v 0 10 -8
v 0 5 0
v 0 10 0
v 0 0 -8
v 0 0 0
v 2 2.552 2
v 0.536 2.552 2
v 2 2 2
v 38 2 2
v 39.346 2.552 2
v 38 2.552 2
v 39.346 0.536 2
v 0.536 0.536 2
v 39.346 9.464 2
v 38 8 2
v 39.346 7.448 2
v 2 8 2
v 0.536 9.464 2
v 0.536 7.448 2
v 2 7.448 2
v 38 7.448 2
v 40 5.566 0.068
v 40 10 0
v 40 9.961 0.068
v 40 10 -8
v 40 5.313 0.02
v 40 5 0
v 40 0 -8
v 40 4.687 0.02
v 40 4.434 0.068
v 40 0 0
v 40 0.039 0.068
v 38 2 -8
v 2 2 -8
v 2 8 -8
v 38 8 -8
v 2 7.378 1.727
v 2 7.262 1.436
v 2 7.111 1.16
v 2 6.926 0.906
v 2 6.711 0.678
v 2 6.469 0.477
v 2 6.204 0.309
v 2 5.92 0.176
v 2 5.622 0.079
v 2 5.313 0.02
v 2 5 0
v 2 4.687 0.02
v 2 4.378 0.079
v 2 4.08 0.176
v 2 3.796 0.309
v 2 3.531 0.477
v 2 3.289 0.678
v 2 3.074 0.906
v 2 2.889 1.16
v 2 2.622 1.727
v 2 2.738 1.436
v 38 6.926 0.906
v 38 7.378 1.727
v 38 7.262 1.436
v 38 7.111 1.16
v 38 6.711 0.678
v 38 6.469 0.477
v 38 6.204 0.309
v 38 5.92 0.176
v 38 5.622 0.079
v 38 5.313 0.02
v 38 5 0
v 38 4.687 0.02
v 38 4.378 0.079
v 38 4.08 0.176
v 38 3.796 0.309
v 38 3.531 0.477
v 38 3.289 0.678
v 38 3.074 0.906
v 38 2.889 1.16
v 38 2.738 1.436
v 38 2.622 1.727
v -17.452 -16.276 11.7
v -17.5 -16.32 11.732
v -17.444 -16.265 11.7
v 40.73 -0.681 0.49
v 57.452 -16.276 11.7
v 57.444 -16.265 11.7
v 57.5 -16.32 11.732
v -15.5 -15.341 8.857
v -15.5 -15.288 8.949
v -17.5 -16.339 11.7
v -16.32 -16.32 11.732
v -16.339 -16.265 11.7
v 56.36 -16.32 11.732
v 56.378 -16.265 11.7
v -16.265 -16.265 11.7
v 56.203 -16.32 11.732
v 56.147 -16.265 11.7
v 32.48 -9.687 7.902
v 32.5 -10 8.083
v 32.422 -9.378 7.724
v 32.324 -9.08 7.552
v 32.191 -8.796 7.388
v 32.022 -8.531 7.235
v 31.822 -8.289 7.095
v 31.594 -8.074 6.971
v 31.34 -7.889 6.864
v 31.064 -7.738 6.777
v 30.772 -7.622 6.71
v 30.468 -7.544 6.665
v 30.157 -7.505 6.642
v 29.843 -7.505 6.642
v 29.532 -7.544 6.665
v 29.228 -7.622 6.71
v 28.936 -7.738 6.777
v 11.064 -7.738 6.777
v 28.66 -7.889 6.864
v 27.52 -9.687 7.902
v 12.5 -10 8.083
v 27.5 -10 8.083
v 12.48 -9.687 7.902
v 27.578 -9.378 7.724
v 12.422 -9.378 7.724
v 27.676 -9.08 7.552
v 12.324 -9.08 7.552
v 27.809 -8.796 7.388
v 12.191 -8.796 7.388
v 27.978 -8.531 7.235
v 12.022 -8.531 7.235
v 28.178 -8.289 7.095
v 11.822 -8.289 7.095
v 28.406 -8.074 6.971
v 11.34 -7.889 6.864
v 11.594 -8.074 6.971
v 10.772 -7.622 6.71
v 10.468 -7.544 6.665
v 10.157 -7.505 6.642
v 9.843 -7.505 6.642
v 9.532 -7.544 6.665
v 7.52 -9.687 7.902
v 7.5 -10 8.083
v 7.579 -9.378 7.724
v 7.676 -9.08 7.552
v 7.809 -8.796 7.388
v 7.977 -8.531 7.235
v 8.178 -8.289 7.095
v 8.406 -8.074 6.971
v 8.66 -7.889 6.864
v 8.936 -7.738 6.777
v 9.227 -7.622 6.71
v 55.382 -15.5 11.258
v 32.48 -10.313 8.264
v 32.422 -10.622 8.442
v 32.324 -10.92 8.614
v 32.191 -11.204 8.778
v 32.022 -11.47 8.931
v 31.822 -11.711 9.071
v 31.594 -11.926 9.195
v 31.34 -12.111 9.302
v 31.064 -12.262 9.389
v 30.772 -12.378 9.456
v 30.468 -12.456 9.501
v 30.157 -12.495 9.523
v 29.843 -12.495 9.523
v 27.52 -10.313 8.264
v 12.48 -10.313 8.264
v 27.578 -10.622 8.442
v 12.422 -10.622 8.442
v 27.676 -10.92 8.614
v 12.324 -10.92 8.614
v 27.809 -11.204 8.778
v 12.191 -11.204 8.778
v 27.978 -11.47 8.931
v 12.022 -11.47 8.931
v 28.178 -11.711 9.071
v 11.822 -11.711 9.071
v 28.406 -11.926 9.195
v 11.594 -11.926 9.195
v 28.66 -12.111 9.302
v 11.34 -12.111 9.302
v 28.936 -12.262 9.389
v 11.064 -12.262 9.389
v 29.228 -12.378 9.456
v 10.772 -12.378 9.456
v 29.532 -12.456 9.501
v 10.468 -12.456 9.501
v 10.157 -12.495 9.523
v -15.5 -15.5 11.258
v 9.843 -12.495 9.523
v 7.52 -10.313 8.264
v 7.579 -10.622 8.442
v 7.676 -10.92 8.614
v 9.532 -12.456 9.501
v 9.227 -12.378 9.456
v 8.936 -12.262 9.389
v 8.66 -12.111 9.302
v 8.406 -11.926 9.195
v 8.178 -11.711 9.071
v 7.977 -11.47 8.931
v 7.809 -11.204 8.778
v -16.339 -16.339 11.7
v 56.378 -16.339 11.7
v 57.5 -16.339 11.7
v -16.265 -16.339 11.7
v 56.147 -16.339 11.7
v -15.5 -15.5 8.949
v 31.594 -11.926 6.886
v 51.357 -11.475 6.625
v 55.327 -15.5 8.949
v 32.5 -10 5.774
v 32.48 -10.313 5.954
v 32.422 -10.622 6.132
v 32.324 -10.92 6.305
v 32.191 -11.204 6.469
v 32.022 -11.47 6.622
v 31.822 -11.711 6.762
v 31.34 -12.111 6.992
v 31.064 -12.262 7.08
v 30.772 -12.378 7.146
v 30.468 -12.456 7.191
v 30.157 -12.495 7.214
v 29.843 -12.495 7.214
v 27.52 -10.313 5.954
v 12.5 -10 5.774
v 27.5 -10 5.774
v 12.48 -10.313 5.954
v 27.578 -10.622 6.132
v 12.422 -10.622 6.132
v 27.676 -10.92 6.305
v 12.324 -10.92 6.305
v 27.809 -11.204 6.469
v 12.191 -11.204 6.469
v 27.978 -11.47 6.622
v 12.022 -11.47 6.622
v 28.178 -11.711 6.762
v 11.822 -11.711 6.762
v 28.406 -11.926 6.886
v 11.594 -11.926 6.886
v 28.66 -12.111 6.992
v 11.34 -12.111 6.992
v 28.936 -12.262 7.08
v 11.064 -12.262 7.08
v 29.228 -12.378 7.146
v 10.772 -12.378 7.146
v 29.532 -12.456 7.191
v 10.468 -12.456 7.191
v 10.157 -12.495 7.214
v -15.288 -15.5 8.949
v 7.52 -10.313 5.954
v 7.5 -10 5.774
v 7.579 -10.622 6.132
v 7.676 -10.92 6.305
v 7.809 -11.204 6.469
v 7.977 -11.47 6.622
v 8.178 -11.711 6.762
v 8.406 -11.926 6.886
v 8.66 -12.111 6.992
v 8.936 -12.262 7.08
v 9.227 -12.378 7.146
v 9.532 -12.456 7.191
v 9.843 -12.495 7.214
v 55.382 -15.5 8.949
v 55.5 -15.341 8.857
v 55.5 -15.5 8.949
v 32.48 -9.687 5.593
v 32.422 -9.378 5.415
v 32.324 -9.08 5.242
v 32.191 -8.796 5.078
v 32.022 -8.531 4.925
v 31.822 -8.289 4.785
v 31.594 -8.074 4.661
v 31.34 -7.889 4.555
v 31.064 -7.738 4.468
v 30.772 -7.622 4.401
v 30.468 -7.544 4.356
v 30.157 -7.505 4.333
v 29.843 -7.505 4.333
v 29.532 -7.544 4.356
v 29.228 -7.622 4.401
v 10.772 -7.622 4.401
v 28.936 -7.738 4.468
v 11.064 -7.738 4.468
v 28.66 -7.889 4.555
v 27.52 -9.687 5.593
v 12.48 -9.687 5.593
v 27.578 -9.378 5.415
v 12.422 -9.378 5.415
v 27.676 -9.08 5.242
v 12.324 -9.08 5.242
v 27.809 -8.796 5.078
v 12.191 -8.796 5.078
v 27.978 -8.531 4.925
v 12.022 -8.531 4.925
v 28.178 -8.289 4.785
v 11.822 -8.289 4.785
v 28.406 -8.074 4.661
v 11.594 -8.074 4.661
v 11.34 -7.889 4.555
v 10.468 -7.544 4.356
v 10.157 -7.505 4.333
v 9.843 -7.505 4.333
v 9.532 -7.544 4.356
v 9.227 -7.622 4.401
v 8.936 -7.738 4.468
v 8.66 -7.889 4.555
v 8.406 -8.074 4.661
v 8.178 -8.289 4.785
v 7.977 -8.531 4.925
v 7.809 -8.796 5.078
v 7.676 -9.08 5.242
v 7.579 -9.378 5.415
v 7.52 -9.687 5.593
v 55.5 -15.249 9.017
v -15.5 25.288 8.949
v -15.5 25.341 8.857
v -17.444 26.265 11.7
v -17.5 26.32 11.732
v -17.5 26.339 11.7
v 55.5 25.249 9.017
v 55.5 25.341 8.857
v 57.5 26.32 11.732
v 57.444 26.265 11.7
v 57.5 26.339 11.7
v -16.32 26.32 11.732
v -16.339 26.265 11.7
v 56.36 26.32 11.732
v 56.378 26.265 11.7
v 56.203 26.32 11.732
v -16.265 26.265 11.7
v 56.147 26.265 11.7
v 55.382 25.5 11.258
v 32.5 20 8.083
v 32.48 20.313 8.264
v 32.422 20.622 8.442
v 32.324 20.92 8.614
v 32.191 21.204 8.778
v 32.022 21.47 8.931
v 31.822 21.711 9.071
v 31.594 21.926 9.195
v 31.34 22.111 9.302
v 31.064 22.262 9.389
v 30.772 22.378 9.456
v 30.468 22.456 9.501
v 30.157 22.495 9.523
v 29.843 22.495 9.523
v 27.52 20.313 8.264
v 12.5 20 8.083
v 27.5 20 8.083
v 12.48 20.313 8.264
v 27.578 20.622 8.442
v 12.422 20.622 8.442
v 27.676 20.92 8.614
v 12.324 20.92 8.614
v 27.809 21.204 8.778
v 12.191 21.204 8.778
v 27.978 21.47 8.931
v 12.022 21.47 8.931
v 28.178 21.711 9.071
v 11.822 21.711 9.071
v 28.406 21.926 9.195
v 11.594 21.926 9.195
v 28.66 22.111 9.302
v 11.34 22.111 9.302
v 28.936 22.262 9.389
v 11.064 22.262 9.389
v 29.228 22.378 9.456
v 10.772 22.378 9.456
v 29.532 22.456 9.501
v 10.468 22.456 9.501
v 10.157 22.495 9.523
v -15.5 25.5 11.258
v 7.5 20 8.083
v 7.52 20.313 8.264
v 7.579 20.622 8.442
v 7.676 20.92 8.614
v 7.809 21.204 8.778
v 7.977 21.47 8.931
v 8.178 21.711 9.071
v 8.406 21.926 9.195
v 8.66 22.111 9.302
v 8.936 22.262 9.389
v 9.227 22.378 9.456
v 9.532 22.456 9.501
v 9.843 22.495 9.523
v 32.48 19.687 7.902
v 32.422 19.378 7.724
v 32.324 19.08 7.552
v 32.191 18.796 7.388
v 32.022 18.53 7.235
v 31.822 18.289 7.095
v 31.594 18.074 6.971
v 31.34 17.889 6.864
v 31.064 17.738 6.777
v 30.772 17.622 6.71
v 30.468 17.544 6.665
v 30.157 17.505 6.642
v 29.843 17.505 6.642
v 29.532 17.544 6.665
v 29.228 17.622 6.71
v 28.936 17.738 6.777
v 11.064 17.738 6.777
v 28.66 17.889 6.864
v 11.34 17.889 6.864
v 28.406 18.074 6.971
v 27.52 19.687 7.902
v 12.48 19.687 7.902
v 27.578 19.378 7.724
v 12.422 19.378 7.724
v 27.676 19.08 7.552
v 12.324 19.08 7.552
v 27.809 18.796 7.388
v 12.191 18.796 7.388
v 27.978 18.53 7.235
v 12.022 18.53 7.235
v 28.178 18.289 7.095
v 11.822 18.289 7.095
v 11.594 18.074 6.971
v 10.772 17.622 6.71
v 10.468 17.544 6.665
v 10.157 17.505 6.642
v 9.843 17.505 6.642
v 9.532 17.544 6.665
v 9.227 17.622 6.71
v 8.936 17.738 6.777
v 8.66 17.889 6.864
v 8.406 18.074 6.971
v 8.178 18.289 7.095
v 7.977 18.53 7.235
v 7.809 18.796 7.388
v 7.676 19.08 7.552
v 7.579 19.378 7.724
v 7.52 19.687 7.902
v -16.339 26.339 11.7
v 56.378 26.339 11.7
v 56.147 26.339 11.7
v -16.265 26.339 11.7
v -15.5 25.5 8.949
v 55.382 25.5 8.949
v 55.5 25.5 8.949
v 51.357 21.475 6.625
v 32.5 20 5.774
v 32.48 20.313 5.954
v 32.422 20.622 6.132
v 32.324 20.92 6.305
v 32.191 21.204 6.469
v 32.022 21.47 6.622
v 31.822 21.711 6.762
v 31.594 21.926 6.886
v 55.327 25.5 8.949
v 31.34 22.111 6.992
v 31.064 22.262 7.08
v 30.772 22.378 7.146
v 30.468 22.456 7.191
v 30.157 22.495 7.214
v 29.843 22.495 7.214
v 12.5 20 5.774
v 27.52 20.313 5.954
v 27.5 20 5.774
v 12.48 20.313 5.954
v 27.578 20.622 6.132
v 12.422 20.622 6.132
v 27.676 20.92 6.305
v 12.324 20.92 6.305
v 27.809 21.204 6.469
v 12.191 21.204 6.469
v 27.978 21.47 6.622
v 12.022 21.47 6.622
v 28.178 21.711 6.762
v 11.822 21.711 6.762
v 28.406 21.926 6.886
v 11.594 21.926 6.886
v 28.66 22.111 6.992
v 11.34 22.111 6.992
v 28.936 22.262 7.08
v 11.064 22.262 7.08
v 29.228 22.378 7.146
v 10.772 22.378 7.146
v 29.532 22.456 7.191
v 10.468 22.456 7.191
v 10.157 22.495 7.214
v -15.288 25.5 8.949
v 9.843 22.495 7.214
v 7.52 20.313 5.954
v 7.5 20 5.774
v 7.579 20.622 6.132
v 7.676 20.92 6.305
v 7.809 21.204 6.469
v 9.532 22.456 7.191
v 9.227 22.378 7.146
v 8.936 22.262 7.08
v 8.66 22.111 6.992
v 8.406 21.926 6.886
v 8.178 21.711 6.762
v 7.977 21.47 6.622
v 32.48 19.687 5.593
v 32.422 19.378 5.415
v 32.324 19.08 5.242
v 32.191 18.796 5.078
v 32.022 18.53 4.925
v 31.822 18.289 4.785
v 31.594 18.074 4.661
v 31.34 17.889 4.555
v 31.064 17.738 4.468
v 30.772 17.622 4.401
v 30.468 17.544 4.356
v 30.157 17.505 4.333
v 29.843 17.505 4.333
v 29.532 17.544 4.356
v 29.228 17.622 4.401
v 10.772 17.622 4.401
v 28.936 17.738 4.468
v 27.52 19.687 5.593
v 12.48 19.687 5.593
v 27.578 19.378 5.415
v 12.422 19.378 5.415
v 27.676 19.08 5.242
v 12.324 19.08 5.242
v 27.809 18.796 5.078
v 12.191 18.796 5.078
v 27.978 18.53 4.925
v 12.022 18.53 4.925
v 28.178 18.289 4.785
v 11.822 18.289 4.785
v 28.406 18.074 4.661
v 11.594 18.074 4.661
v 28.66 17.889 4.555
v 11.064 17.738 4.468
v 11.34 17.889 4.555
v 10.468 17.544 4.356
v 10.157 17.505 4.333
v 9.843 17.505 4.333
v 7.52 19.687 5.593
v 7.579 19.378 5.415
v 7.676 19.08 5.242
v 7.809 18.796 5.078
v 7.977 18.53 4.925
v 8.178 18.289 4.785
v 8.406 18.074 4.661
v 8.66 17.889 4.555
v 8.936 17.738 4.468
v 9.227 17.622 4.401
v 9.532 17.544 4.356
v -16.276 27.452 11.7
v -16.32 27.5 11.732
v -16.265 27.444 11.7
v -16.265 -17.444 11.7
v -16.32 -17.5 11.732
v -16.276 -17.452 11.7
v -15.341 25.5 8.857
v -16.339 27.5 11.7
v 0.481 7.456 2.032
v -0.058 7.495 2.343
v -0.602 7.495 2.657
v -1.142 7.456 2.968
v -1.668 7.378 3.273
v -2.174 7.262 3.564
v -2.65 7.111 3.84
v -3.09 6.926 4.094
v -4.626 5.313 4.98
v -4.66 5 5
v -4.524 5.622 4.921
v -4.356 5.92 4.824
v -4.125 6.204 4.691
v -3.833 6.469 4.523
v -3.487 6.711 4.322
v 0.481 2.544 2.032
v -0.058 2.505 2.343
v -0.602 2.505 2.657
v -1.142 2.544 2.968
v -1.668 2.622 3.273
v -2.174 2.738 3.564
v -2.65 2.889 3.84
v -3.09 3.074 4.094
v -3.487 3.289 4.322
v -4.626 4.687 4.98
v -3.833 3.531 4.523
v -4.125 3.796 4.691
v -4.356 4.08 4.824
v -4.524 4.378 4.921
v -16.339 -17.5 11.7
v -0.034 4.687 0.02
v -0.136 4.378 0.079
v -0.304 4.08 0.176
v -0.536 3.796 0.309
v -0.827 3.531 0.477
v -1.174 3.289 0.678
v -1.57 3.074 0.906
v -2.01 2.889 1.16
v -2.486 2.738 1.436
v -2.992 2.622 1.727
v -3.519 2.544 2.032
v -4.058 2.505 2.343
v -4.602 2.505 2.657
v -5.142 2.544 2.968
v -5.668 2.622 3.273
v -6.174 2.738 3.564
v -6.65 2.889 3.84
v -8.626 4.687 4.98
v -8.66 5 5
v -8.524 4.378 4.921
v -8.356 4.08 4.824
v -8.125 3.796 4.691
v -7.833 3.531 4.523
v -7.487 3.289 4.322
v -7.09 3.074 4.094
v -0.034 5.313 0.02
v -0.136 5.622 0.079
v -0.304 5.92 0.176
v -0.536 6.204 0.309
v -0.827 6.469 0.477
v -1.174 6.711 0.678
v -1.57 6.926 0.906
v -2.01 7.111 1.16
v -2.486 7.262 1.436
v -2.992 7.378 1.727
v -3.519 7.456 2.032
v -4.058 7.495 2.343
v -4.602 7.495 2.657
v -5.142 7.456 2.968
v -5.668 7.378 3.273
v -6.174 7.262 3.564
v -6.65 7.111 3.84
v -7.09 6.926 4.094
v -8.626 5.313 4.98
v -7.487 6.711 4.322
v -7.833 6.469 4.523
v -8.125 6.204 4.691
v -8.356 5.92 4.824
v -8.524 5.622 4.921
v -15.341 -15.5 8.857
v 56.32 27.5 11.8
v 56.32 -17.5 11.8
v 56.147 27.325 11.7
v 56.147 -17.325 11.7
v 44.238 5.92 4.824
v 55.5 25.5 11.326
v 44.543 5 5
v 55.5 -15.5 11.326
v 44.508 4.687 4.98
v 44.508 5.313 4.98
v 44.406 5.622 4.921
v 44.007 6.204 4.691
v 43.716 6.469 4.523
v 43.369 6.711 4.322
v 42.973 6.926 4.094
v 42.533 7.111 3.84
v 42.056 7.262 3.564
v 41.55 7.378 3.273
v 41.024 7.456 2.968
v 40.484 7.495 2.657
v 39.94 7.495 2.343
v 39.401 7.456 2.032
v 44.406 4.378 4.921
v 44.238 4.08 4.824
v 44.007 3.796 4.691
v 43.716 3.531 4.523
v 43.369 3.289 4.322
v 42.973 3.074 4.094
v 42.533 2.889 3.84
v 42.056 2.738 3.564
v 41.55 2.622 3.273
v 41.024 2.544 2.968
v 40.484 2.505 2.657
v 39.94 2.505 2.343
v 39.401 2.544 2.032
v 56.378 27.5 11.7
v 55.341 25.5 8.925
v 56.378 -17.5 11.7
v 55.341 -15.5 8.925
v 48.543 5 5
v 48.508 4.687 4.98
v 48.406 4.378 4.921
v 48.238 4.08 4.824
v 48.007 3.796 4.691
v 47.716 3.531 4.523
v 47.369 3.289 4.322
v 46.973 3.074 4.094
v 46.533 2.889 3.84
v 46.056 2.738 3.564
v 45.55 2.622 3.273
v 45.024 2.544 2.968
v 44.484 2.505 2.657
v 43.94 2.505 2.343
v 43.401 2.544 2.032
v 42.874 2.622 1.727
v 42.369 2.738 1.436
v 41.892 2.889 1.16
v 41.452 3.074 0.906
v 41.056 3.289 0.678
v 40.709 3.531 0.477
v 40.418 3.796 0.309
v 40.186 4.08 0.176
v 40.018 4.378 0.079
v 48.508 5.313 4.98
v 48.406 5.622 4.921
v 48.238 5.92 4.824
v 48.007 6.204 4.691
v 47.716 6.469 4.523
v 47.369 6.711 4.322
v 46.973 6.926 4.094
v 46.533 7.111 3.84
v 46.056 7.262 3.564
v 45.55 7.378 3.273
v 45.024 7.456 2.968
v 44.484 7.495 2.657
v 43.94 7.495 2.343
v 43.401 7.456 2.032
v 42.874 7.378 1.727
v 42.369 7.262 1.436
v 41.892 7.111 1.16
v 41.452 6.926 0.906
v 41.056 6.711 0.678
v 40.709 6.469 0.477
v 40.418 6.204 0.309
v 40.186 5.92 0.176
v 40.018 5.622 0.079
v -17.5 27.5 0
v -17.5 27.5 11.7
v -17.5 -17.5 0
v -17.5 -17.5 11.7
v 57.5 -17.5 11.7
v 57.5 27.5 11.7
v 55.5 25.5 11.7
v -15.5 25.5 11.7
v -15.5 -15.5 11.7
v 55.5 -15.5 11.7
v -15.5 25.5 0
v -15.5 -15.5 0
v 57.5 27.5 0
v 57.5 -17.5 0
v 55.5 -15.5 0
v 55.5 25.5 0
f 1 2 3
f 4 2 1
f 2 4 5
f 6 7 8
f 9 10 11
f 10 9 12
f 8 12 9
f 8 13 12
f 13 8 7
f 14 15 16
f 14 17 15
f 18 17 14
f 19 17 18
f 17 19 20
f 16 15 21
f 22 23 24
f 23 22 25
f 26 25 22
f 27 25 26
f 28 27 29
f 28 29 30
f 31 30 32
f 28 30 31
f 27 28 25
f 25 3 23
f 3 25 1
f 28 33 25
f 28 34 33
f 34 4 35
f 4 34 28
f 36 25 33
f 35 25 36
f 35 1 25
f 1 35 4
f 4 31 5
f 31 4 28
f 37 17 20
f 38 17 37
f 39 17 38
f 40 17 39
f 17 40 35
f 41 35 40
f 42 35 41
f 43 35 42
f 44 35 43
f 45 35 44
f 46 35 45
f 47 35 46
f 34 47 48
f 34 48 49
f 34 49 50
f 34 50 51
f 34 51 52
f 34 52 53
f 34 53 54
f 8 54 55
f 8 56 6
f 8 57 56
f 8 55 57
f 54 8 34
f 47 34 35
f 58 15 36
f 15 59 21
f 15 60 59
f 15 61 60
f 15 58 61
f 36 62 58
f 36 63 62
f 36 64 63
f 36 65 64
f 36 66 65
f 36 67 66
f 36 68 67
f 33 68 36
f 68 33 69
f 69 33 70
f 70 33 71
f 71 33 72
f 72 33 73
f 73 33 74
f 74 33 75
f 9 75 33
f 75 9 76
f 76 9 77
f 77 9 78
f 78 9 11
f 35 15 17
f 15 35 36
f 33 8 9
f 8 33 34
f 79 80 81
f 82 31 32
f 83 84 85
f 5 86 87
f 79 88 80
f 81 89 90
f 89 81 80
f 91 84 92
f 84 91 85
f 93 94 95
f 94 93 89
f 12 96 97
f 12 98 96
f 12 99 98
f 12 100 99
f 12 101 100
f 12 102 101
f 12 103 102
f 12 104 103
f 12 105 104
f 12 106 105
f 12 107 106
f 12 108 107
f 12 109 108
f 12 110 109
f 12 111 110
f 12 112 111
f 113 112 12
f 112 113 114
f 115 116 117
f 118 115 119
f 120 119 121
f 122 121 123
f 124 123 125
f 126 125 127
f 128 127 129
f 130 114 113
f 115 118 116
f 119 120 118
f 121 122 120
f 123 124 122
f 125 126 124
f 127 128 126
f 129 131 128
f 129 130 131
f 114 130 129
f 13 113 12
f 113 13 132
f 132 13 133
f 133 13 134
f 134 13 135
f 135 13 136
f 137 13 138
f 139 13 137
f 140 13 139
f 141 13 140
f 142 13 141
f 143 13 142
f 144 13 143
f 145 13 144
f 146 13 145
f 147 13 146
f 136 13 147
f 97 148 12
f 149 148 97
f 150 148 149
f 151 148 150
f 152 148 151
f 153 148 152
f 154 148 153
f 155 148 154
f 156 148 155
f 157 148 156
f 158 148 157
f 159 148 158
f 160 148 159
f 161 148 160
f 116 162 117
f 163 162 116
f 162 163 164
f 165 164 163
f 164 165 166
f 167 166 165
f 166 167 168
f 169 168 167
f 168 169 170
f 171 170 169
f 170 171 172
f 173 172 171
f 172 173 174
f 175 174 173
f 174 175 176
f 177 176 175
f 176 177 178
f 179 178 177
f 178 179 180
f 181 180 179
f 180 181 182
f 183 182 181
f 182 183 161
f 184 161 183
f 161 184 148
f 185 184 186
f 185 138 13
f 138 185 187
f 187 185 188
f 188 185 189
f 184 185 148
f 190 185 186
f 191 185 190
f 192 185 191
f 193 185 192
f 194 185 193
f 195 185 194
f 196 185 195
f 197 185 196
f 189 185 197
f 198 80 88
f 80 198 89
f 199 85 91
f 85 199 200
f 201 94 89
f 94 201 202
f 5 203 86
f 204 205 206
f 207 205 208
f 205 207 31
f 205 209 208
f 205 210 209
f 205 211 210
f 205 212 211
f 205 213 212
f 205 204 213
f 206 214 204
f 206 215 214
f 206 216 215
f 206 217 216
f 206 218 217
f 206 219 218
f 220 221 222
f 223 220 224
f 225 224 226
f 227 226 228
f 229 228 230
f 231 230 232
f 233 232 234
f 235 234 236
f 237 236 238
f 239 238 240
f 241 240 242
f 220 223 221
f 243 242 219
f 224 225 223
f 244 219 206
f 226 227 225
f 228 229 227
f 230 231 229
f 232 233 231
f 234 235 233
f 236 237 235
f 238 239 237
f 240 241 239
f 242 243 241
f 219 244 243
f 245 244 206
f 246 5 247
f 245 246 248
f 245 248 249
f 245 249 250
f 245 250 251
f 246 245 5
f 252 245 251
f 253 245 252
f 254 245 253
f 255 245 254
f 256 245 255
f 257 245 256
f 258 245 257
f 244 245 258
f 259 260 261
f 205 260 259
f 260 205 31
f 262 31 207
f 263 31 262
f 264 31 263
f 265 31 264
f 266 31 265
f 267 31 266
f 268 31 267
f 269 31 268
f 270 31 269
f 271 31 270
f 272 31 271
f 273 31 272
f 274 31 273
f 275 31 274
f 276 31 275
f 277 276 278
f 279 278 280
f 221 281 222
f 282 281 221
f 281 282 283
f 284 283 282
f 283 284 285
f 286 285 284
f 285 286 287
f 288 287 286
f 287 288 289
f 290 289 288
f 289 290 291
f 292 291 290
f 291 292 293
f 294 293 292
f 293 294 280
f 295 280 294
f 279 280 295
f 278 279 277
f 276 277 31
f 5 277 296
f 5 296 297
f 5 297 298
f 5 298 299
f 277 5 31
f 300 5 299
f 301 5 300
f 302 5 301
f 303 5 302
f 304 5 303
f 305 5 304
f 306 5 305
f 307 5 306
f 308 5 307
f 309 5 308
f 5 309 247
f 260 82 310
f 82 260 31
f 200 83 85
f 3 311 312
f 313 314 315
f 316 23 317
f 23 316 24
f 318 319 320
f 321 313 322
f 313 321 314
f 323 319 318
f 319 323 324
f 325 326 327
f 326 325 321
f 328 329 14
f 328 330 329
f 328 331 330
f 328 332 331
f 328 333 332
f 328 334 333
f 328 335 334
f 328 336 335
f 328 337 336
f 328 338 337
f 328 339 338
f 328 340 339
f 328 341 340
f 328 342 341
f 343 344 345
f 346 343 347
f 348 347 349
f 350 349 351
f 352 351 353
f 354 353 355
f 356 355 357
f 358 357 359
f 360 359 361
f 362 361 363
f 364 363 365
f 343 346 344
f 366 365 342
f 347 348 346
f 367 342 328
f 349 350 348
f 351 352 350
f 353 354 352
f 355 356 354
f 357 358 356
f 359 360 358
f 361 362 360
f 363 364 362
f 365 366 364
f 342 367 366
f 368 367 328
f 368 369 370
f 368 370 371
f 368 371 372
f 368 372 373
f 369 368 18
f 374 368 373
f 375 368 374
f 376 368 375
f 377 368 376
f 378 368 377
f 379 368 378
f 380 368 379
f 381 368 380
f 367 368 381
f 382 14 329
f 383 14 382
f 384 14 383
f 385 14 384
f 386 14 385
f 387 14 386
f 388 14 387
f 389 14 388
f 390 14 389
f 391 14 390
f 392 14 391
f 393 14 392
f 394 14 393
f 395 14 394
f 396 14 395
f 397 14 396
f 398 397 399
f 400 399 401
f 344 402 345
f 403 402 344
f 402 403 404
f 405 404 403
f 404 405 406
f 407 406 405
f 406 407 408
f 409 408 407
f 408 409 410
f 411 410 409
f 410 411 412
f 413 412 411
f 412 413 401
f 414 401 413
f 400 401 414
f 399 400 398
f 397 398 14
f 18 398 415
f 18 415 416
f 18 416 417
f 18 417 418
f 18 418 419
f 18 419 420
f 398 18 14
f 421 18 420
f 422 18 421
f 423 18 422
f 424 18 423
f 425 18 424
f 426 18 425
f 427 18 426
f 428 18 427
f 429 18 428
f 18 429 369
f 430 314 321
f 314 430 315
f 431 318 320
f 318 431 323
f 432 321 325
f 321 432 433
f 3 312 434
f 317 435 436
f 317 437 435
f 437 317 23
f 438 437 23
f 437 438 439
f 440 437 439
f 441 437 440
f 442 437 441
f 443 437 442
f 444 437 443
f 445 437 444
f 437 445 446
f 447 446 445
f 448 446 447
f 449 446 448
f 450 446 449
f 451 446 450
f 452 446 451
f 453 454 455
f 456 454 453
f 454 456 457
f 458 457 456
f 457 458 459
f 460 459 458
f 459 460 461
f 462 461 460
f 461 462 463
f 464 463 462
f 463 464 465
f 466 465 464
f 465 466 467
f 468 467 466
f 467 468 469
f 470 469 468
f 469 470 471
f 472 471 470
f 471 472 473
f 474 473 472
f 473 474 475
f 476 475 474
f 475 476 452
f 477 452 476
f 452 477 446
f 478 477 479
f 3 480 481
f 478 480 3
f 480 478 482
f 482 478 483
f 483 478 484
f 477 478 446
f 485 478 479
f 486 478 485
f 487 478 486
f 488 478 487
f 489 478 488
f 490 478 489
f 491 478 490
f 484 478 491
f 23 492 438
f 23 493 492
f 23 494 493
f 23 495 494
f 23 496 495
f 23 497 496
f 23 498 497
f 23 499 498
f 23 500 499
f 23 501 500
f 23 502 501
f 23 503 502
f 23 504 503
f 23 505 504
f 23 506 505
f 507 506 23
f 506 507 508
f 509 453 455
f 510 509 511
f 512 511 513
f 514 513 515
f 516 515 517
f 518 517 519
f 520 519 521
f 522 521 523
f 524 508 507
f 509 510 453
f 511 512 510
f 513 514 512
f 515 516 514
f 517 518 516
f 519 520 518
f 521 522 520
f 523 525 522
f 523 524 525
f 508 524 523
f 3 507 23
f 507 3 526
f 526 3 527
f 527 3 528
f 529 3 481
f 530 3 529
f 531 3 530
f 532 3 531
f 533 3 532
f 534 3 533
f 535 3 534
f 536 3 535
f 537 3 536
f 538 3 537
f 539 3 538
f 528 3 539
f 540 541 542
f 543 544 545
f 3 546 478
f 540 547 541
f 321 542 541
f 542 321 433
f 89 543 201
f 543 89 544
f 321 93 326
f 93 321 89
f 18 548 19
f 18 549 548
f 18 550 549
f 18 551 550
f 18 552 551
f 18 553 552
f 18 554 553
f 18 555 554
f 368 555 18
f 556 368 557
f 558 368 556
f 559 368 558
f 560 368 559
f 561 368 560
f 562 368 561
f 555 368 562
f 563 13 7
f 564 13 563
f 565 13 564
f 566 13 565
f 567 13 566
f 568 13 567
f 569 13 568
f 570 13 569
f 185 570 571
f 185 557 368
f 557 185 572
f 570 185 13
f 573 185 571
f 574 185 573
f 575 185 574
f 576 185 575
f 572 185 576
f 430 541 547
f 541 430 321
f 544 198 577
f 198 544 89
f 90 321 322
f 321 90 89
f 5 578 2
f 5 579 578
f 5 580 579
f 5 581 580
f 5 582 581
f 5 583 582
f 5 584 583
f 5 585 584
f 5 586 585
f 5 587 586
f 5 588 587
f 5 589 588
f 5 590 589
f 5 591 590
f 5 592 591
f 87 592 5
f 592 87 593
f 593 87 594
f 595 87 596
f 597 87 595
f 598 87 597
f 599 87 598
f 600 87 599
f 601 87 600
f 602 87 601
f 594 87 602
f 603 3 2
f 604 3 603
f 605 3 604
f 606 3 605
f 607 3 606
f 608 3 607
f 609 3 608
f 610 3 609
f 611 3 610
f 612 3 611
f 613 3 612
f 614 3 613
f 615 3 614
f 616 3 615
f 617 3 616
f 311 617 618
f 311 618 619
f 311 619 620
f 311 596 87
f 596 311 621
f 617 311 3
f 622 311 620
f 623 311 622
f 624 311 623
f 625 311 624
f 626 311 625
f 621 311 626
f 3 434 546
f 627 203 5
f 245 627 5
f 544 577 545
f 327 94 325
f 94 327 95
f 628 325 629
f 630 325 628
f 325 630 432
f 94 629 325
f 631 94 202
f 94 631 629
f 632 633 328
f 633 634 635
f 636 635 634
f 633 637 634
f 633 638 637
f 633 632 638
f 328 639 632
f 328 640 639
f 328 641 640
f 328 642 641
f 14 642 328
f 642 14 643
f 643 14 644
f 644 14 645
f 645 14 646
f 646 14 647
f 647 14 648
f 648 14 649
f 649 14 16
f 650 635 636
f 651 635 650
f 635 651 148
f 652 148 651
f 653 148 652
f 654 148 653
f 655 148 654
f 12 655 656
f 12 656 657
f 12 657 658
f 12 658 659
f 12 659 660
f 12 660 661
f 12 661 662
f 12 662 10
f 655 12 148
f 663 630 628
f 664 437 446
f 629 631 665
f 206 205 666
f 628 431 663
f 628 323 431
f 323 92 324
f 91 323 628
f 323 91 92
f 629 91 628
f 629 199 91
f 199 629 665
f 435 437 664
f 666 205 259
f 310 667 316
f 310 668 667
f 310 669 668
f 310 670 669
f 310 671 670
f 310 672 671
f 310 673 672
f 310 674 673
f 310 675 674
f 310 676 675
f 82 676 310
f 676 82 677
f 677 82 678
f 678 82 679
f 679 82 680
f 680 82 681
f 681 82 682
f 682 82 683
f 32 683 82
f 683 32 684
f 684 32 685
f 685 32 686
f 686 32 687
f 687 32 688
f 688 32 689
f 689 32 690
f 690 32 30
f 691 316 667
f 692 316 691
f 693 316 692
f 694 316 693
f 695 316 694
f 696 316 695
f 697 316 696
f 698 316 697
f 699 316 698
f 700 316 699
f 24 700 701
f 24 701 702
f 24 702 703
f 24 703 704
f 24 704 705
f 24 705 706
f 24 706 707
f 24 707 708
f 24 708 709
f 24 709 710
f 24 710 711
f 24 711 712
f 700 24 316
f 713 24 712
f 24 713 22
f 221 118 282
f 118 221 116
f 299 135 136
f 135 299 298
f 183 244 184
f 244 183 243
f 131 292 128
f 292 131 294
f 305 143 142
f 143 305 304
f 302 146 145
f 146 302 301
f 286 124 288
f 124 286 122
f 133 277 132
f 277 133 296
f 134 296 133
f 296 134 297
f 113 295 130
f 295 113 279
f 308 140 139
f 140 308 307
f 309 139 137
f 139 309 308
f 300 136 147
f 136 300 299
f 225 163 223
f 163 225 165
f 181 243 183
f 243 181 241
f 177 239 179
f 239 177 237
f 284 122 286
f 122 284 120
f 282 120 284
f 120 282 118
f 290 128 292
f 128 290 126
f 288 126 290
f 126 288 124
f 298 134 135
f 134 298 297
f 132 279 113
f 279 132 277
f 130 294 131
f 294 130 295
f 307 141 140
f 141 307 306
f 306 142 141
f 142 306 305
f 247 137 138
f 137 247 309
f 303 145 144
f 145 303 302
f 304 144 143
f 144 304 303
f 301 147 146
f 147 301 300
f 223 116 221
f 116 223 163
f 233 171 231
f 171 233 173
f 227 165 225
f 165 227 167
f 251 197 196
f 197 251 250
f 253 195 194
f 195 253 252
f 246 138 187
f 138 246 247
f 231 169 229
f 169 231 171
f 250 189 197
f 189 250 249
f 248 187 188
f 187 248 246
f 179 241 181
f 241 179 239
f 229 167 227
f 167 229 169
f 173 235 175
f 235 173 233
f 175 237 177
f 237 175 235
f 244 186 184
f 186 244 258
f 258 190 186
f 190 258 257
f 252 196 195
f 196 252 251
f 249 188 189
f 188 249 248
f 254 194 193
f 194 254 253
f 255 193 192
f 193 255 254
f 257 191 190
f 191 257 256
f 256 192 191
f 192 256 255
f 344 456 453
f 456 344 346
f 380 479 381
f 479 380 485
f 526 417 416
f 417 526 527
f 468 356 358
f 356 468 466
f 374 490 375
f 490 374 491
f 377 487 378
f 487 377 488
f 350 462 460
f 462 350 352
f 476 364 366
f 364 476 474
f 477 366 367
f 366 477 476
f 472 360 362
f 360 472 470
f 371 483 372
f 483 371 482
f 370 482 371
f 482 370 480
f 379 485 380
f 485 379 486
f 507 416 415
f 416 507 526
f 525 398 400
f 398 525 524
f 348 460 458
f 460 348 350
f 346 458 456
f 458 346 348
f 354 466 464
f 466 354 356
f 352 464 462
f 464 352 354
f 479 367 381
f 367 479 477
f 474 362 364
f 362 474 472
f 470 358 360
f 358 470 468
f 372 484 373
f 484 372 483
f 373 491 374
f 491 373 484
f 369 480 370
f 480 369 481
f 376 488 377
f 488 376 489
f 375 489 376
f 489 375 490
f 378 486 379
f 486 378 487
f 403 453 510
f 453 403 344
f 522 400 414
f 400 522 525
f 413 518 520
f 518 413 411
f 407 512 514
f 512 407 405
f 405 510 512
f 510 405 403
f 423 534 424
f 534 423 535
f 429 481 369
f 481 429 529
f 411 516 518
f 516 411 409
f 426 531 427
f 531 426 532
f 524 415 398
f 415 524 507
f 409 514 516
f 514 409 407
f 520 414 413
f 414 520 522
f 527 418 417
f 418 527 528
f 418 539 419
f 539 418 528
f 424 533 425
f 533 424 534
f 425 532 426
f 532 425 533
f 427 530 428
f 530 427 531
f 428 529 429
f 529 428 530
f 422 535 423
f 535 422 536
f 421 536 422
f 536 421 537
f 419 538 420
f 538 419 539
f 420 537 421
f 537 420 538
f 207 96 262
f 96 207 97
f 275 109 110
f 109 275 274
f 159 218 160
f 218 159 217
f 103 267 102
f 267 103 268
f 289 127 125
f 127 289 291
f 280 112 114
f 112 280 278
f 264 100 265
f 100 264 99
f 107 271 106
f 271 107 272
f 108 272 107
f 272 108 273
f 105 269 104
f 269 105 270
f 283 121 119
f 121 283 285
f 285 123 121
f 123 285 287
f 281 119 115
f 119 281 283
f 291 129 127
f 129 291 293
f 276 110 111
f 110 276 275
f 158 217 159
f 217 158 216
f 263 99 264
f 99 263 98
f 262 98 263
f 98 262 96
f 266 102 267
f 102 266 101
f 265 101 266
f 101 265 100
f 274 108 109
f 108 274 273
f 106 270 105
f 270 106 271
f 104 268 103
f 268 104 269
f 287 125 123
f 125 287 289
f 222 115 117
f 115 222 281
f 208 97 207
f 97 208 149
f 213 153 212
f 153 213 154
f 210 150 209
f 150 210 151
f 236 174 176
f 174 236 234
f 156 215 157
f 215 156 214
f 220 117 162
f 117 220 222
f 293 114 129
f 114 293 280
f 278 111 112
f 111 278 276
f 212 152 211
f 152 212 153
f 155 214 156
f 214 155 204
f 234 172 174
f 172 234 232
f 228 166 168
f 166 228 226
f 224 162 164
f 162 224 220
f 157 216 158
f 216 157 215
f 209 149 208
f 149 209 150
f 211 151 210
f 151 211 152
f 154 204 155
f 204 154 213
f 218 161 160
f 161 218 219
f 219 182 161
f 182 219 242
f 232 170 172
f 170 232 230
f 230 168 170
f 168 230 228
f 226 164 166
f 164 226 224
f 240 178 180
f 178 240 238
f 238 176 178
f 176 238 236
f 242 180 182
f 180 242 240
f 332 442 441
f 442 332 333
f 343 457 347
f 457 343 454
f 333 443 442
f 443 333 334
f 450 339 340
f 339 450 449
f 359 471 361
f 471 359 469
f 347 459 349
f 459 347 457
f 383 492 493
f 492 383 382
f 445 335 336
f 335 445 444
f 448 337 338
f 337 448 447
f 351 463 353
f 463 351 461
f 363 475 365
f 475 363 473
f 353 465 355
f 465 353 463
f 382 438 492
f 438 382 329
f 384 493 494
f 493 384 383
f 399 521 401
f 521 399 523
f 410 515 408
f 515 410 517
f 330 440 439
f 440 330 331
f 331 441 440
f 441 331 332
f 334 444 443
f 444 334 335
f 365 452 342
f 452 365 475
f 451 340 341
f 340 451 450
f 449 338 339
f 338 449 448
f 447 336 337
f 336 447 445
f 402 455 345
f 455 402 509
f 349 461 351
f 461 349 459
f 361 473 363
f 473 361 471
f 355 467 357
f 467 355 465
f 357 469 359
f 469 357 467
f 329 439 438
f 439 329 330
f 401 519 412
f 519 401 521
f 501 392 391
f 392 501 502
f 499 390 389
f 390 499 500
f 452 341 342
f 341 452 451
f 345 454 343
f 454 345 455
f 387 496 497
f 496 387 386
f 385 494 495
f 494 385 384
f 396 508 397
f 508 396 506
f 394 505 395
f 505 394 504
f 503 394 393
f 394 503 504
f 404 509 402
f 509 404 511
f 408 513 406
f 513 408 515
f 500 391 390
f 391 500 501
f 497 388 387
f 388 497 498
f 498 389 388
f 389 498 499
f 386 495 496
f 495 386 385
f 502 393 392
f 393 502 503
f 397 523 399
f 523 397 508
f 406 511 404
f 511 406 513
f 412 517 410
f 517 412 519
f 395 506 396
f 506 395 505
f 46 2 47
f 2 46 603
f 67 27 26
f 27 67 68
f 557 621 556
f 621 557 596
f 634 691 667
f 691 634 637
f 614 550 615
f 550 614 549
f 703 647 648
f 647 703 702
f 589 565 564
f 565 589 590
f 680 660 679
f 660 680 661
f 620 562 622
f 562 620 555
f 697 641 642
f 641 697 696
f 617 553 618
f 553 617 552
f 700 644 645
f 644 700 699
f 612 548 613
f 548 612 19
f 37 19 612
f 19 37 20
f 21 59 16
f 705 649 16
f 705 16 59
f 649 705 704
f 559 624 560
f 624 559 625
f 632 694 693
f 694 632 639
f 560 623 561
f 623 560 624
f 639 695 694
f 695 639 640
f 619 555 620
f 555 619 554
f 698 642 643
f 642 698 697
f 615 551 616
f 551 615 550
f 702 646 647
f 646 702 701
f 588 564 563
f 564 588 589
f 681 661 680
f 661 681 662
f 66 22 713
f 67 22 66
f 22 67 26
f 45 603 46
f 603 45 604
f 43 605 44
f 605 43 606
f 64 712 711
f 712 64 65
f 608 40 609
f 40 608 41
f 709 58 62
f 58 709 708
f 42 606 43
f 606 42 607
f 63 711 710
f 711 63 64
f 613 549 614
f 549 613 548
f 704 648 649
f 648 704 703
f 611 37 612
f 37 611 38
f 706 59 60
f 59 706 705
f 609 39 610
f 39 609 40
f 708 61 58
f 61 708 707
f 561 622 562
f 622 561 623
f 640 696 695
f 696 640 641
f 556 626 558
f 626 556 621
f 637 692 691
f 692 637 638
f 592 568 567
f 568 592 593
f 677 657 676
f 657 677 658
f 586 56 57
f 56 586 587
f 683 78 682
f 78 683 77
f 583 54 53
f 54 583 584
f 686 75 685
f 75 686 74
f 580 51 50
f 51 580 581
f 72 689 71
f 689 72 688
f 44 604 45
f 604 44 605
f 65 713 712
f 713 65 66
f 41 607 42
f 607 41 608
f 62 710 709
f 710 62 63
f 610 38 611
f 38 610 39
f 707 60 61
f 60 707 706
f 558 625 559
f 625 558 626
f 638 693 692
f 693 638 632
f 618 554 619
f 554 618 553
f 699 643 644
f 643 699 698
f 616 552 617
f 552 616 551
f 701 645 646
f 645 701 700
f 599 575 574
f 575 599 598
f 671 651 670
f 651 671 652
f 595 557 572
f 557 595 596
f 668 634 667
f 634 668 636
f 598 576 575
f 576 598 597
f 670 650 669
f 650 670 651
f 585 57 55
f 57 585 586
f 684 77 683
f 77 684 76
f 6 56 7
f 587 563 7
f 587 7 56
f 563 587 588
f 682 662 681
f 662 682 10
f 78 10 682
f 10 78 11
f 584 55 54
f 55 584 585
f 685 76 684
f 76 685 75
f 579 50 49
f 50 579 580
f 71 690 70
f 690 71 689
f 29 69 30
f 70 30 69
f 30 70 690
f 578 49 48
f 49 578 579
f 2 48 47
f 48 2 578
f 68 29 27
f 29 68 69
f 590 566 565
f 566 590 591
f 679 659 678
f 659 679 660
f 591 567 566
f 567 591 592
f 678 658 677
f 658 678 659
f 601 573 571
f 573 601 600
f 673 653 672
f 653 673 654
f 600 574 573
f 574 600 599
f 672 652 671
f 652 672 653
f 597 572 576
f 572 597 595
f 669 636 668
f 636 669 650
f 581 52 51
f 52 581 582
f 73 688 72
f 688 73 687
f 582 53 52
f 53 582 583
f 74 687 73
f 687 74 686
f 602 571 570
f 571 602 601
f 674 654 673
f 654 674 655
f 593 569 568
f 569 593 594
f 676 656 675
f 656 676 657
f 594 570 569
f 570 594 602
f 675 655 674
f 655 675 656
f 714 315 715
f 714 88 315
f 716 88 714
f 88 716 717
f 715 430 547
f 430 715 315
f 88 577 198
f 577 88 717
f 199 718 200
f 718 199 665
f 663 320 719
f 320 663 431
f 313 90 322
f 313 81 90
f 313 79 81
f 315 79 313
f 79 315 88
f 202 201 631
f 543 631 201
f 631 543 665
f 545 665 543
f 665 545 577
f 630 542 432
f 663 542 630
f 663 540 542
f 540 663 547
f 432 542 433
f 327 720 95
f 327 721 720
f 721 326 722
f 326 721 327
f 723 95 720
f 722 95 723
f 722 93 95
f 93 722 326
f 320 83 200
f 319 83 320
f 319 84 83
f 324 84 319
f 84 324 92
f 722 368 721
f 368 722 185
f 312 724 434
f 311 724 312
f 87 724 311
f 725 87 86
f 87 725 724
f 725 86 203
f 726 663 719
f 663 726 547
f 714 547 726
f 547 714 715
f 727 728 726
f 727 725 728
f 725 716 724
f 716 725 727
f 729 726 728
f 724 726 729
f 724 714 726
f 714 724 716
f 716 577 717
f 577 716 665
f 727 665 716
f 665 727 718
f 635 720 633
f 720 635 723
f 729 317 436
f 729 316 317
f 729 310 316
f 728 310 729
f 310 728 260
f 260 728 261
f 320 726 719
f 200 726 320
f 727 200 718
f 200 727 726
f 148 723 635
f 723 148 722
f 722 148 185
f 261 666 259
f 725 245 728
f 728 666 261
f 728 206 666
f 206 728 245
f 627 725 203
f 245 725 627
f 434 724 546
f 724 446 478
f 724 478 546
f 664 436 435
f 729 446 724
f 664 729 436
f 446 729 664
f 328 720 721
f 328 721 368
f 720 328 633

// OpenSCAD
wall = 2;
$fn = 50;

module slope1()
{
    linear_extrude(wall)
    {
        polygon(points=[[0,0],[40,0],[40+17.5,-20],[0-17.5,-20]]);
    }
}
module slope2()
{
    linear_extrude(wall)
    {
        polygon(points=[[0,0],[0,10],[-20,10+17.5],[0-20,0-17.5]]);
    }
}

module shute()
{
    translate([0,0,2])
    union()
    {
        translate([0,0,-10])
        difference()
        {
            cube([40,10,10]);
            translate([wall,wall,-0.5])
                cube([40-2*wall,10-2*wall,11]);
        }
        translate([0,0,-wall])
            rotate([-30,0,0])
                slope1();
        translate([0,10,-wall])
            rotate([30,0,0])
                mirror([0,1,0])
                    slope1();
        translate([0,0,-wall])
            rotate([0,30,0])
                slope2();
        translate([40-wall/2,0,-0.2])
            rotate([0,150,0])
                slope2();
    }
}

difference()
{
    shute();
    
    translate([10,-10,0])
        cylinder(r=2.5,h=50);
    translate([10,20,0])
        cylinder(r=2.5,h=50);
    translate([30,-10,0])
        cylinder(r=2.5,h=50);
    translate([30,20,0])
        cylinder(r=2.5,h=50);
//    translate([-10,5,0])
//        cylinder(r=2.5,h=50);
//    translate([50,5,0])
//        cylinder(r=2.5,h=50);
    
    translate([-10,5,2.5])
        rotate([0,90,0])
            cylinder(r=2.5,h=60);
}

translate([-17.5,-17.5,0])
    cube([wall,45,11.7]);
translate([40+17.5-wall,-17.5,0])
    cube([wall,45,11.7]);

translate([-17.5,-17.5,0])
    cube([74.5,wall,11.7]);
translate([-17.5,25.5,0])
    cube([74.5,wall,11.7]);
